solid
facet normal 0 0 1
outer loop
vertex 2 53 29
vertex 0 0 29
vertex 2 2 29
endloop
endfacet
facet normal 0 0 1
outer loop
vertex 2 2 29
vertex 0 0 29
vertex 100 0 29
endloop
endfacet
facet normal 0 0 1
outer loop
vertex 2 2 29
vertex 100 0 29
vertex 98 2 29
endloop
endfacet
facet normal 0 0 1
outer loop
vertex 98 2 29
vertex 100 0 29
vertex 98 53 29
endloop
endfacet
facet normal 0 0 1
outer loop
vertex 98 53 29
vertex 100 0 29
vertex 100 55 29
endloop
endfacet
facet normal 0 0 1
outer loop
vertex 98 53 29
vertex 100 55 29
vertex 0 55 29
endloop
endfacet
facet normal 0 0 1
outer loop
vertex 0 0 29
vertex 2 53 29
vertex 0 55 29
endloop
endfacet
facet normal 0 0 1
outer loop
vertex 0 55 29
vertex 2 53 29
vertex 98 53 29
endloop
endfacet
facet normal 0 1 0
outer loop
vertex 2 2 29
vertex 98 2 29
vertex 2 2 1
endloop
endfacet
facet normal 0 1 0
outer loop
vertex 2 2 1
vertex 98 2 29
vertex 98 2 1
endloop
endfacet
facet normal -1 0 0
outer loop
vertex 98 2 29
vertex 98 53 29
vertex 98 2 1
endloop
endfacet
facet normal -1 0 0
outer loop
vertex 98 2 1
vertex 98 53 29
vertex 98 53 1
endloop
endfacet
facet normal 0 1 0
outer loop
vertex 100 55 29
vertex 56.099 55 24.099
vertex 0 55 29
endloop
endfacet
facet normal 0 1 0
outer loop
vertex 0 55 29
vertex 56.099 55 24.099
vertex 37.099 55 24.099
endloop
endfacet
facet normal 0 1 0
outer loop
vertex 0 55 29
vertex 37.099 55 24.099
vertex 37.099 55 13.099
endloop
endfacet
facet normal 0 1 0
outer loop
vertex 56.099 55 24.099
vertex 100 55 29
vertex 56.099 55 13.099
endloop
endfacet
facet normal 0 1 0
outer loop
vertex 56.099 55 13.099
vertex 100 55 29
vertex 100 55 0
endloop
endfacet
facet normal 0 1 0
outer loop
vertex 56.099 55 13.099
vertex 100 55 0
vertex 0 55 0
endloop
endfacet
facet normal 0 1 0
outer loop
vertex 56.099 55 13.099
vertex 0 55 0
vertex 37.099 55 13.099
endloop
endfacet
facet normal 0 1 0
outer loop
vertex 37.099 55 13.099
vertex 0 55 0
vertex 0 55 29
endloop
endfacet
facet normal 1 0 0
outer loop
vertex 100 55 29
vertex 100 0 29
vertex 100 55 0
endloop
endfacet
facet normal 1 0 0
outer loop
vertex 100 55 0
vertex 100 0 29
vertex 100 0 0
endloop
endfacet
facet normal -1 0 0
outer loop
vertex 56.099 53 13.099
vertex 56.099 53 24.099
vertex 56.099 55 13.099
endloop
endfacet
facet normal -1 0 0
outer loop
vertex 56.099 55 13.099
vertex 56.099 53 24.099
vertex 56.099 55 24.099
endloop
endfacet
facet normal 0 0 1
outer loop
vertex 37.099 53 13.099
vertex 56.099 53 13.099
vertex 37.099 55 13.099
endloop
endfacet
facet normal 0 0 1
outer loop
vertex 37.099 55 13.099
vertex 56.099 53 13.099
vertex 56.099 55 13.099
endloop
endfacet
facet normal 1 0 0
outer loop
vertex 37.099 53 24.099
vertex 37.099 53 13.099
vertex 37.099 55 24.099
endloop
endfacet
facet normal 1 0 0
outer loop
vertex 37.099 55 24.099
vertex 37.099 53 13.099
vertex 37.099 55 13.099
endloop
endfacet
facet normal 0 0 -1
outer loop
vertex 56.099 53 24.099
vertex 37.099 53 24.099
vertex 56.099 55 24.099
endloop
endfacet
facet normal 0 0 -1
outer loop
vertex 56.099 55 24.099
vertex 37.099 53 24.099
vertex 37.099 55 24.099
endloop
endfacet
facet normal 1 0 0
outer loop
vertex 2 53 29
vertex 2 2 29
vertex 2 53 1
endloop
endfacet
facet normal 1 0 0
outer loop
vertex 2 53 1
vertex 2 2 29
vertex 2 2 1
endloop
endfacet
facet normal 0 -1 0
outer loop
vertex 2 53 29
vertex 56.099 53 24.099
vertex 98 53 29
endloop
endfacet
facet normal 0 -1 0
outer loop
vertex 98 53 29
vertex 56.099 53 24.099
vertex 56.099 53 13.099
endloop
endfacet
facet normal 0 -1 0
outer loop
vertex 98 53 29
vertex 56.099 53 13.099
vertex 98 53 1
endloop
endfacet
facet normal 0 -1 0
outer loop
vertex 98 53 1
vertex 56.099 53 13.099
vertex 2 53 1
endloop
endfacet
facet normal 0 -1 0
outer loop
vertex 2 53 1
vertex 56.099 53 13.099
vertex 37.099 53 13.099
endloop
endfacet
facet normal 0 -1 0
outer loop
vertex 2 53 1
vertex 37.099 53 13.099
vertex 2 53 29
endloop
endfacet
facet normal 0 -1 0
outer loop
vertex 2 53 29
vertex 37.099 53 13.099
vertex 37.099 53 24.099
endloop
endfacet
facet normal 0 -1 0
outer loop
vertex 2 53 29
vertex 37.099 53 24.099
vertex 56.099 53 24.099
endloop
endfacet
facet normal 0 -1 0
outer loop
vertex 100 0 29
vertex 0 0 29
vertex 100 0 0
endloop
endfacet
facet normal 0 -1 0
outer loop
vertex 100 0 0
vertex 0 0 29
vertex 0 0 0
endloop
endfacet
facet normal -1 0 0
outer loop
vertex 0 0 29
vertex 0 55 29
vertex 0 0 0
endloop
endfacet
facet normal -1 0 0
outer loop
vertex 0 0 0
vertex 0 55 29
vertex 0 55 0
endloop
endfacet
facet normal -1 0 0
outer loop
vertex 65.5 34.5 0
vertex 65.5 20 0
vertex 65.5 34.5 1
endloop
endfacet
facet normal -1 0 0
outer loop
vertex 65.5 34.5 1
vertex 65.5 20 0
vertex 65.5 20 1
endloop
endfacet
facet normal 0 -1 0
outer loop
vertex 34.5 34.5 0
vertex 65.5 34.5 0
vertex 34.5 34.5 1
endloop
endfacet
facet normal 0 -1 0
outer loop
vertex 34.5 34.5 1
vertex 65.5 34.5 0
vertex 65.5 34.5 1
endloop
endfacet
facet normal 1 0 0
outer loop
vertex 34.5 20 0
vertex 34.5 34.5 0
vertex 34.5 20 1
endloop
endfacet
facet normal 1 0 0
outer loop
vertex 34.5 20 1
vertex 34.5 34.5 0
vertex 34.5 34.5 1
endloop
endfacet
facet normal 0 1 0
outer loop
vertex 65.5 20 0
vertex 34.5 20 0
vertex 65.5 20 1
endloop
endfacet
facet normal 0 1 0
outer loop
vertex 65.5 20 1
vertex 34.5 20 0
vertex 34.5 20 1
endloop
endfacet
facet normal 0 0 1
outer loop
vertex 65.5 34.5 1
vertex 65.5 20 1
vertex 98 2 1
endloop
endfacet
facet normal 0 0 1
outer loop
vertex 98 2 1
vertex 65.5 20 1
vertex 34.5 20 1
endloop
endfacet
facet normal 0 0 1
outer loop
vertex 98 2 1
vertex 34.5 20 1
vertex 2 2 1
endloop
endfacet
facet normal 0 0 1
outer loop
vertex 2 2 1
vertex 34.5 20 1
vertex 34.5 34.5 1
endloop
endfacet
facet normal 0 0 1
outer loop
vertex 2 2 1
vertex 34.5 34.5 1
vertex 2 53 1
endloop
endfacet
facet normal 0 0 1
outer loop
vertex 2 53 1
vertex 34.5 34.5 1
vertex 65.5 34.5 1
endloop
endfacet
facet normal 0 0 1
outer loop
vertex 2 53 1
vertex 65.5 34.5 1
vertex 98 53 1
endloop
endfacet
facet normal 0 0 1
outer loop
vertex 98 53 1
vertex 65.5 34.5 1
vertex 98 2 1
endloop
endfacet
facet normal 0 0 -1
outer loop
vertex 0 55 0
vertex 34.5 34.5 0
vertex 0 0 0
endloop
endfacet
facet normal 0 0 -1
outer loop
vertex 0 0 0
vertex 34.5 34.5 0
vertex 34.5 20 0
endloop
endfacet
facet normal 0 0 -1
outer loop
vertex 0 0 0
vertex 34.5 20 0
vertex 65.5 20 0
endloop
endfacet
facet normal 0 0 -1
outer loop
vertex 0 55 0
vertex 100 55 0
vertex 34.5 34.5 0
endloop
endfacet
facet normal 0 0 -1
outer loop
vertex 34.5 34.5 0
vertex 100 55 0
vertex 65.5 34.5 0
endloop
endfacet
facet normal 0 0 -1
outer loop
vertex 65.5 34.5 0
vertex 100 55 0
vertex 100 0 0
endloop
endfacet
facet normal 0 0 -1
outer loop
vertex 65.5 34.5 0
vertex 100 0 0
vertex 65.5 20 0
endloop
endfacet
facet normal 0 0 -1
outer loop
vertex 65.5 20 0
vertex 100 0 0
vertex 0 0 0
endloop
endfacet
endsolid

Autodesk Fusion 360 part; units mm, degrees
sketch "Sketch1" plane through (0, 0, 0) normal (0, 0, 1) x (1, 0, 0)
  line L0 (0, 0) -> (100, 0)
  line L1 (100, 0) -> (100, 55)
  line L2 (100, 55) -> (0, 55)
  line L3 (0, 55) -> (0, 0)
  line L4 (2, 2) -> (98, 2)
  line L5 (98, 2) -> (98, 53)
  line L6 (98, 53) -> (2, 53)
  line L7 (2, 53) -> (2, 2)
  line L8 (34.5, 34.5) -> (65.5, 34.5)
  line L9 (65.5, 34.5) -> (65.5, 20)
  line L10 (65.5, 20) -> (34.5, 20)
  line L11 (34.5, 20) -> (34.5, 34.5)
  dimension "d1" = -2
  dimension "d12" = 31
  dimension "d13" = 14.5
  dimension "d14" = 96
  dimension "d15" = 32.5
  dimension "d16" = 51
  dimension "d17" = 55
  dimension "d18" = 20
extrude "Extrude1" add sketch "Sketch1" along normal blind 1 contours L4 L5 L6 L7
extrude "Extrude2" add sketch "Sketch1" along normal blind 4 contours L0 L1 L2 L3
extrude "Extrude3" add 1 faces at (34, 0.6667, 4) along direction (0, 0, 1) blind 50
sketch "Sketch2" plane through (0, 55, 0) normal (0, 1, 0) x (-1, 0, 0)
  line L0 (-100, 0) -> (0, 0)
  line L1 (0, 0) -> (0, 54)
  line L2 (0, 54) -> (-100, 54)
  line L3 (-100, 54) -> (-100, 0)
  line L4 (-56.0994, 24.0994) -> (-37.0994, 24.0994)
  line L5 (-37.0994, 24.0994) -> (-37.0994, 13.0994)
  line L6 (-37.0994, 13.0994) -> (-56.0994, 13.0994)
  line L7 (-56.0994, 13.0994) -> (-56.0994, 24.0994)
  dimension "d8" = 19
  dimension "d9" = 11
extrude "Extrude4" cut sketch "Sketch2" against normal blind 15 contours L4 L5 L6 L7
extrude "Extrude5" cut 1 faces at (34, 0.6667, 54) along direction (0, 0, -1) blind 25
